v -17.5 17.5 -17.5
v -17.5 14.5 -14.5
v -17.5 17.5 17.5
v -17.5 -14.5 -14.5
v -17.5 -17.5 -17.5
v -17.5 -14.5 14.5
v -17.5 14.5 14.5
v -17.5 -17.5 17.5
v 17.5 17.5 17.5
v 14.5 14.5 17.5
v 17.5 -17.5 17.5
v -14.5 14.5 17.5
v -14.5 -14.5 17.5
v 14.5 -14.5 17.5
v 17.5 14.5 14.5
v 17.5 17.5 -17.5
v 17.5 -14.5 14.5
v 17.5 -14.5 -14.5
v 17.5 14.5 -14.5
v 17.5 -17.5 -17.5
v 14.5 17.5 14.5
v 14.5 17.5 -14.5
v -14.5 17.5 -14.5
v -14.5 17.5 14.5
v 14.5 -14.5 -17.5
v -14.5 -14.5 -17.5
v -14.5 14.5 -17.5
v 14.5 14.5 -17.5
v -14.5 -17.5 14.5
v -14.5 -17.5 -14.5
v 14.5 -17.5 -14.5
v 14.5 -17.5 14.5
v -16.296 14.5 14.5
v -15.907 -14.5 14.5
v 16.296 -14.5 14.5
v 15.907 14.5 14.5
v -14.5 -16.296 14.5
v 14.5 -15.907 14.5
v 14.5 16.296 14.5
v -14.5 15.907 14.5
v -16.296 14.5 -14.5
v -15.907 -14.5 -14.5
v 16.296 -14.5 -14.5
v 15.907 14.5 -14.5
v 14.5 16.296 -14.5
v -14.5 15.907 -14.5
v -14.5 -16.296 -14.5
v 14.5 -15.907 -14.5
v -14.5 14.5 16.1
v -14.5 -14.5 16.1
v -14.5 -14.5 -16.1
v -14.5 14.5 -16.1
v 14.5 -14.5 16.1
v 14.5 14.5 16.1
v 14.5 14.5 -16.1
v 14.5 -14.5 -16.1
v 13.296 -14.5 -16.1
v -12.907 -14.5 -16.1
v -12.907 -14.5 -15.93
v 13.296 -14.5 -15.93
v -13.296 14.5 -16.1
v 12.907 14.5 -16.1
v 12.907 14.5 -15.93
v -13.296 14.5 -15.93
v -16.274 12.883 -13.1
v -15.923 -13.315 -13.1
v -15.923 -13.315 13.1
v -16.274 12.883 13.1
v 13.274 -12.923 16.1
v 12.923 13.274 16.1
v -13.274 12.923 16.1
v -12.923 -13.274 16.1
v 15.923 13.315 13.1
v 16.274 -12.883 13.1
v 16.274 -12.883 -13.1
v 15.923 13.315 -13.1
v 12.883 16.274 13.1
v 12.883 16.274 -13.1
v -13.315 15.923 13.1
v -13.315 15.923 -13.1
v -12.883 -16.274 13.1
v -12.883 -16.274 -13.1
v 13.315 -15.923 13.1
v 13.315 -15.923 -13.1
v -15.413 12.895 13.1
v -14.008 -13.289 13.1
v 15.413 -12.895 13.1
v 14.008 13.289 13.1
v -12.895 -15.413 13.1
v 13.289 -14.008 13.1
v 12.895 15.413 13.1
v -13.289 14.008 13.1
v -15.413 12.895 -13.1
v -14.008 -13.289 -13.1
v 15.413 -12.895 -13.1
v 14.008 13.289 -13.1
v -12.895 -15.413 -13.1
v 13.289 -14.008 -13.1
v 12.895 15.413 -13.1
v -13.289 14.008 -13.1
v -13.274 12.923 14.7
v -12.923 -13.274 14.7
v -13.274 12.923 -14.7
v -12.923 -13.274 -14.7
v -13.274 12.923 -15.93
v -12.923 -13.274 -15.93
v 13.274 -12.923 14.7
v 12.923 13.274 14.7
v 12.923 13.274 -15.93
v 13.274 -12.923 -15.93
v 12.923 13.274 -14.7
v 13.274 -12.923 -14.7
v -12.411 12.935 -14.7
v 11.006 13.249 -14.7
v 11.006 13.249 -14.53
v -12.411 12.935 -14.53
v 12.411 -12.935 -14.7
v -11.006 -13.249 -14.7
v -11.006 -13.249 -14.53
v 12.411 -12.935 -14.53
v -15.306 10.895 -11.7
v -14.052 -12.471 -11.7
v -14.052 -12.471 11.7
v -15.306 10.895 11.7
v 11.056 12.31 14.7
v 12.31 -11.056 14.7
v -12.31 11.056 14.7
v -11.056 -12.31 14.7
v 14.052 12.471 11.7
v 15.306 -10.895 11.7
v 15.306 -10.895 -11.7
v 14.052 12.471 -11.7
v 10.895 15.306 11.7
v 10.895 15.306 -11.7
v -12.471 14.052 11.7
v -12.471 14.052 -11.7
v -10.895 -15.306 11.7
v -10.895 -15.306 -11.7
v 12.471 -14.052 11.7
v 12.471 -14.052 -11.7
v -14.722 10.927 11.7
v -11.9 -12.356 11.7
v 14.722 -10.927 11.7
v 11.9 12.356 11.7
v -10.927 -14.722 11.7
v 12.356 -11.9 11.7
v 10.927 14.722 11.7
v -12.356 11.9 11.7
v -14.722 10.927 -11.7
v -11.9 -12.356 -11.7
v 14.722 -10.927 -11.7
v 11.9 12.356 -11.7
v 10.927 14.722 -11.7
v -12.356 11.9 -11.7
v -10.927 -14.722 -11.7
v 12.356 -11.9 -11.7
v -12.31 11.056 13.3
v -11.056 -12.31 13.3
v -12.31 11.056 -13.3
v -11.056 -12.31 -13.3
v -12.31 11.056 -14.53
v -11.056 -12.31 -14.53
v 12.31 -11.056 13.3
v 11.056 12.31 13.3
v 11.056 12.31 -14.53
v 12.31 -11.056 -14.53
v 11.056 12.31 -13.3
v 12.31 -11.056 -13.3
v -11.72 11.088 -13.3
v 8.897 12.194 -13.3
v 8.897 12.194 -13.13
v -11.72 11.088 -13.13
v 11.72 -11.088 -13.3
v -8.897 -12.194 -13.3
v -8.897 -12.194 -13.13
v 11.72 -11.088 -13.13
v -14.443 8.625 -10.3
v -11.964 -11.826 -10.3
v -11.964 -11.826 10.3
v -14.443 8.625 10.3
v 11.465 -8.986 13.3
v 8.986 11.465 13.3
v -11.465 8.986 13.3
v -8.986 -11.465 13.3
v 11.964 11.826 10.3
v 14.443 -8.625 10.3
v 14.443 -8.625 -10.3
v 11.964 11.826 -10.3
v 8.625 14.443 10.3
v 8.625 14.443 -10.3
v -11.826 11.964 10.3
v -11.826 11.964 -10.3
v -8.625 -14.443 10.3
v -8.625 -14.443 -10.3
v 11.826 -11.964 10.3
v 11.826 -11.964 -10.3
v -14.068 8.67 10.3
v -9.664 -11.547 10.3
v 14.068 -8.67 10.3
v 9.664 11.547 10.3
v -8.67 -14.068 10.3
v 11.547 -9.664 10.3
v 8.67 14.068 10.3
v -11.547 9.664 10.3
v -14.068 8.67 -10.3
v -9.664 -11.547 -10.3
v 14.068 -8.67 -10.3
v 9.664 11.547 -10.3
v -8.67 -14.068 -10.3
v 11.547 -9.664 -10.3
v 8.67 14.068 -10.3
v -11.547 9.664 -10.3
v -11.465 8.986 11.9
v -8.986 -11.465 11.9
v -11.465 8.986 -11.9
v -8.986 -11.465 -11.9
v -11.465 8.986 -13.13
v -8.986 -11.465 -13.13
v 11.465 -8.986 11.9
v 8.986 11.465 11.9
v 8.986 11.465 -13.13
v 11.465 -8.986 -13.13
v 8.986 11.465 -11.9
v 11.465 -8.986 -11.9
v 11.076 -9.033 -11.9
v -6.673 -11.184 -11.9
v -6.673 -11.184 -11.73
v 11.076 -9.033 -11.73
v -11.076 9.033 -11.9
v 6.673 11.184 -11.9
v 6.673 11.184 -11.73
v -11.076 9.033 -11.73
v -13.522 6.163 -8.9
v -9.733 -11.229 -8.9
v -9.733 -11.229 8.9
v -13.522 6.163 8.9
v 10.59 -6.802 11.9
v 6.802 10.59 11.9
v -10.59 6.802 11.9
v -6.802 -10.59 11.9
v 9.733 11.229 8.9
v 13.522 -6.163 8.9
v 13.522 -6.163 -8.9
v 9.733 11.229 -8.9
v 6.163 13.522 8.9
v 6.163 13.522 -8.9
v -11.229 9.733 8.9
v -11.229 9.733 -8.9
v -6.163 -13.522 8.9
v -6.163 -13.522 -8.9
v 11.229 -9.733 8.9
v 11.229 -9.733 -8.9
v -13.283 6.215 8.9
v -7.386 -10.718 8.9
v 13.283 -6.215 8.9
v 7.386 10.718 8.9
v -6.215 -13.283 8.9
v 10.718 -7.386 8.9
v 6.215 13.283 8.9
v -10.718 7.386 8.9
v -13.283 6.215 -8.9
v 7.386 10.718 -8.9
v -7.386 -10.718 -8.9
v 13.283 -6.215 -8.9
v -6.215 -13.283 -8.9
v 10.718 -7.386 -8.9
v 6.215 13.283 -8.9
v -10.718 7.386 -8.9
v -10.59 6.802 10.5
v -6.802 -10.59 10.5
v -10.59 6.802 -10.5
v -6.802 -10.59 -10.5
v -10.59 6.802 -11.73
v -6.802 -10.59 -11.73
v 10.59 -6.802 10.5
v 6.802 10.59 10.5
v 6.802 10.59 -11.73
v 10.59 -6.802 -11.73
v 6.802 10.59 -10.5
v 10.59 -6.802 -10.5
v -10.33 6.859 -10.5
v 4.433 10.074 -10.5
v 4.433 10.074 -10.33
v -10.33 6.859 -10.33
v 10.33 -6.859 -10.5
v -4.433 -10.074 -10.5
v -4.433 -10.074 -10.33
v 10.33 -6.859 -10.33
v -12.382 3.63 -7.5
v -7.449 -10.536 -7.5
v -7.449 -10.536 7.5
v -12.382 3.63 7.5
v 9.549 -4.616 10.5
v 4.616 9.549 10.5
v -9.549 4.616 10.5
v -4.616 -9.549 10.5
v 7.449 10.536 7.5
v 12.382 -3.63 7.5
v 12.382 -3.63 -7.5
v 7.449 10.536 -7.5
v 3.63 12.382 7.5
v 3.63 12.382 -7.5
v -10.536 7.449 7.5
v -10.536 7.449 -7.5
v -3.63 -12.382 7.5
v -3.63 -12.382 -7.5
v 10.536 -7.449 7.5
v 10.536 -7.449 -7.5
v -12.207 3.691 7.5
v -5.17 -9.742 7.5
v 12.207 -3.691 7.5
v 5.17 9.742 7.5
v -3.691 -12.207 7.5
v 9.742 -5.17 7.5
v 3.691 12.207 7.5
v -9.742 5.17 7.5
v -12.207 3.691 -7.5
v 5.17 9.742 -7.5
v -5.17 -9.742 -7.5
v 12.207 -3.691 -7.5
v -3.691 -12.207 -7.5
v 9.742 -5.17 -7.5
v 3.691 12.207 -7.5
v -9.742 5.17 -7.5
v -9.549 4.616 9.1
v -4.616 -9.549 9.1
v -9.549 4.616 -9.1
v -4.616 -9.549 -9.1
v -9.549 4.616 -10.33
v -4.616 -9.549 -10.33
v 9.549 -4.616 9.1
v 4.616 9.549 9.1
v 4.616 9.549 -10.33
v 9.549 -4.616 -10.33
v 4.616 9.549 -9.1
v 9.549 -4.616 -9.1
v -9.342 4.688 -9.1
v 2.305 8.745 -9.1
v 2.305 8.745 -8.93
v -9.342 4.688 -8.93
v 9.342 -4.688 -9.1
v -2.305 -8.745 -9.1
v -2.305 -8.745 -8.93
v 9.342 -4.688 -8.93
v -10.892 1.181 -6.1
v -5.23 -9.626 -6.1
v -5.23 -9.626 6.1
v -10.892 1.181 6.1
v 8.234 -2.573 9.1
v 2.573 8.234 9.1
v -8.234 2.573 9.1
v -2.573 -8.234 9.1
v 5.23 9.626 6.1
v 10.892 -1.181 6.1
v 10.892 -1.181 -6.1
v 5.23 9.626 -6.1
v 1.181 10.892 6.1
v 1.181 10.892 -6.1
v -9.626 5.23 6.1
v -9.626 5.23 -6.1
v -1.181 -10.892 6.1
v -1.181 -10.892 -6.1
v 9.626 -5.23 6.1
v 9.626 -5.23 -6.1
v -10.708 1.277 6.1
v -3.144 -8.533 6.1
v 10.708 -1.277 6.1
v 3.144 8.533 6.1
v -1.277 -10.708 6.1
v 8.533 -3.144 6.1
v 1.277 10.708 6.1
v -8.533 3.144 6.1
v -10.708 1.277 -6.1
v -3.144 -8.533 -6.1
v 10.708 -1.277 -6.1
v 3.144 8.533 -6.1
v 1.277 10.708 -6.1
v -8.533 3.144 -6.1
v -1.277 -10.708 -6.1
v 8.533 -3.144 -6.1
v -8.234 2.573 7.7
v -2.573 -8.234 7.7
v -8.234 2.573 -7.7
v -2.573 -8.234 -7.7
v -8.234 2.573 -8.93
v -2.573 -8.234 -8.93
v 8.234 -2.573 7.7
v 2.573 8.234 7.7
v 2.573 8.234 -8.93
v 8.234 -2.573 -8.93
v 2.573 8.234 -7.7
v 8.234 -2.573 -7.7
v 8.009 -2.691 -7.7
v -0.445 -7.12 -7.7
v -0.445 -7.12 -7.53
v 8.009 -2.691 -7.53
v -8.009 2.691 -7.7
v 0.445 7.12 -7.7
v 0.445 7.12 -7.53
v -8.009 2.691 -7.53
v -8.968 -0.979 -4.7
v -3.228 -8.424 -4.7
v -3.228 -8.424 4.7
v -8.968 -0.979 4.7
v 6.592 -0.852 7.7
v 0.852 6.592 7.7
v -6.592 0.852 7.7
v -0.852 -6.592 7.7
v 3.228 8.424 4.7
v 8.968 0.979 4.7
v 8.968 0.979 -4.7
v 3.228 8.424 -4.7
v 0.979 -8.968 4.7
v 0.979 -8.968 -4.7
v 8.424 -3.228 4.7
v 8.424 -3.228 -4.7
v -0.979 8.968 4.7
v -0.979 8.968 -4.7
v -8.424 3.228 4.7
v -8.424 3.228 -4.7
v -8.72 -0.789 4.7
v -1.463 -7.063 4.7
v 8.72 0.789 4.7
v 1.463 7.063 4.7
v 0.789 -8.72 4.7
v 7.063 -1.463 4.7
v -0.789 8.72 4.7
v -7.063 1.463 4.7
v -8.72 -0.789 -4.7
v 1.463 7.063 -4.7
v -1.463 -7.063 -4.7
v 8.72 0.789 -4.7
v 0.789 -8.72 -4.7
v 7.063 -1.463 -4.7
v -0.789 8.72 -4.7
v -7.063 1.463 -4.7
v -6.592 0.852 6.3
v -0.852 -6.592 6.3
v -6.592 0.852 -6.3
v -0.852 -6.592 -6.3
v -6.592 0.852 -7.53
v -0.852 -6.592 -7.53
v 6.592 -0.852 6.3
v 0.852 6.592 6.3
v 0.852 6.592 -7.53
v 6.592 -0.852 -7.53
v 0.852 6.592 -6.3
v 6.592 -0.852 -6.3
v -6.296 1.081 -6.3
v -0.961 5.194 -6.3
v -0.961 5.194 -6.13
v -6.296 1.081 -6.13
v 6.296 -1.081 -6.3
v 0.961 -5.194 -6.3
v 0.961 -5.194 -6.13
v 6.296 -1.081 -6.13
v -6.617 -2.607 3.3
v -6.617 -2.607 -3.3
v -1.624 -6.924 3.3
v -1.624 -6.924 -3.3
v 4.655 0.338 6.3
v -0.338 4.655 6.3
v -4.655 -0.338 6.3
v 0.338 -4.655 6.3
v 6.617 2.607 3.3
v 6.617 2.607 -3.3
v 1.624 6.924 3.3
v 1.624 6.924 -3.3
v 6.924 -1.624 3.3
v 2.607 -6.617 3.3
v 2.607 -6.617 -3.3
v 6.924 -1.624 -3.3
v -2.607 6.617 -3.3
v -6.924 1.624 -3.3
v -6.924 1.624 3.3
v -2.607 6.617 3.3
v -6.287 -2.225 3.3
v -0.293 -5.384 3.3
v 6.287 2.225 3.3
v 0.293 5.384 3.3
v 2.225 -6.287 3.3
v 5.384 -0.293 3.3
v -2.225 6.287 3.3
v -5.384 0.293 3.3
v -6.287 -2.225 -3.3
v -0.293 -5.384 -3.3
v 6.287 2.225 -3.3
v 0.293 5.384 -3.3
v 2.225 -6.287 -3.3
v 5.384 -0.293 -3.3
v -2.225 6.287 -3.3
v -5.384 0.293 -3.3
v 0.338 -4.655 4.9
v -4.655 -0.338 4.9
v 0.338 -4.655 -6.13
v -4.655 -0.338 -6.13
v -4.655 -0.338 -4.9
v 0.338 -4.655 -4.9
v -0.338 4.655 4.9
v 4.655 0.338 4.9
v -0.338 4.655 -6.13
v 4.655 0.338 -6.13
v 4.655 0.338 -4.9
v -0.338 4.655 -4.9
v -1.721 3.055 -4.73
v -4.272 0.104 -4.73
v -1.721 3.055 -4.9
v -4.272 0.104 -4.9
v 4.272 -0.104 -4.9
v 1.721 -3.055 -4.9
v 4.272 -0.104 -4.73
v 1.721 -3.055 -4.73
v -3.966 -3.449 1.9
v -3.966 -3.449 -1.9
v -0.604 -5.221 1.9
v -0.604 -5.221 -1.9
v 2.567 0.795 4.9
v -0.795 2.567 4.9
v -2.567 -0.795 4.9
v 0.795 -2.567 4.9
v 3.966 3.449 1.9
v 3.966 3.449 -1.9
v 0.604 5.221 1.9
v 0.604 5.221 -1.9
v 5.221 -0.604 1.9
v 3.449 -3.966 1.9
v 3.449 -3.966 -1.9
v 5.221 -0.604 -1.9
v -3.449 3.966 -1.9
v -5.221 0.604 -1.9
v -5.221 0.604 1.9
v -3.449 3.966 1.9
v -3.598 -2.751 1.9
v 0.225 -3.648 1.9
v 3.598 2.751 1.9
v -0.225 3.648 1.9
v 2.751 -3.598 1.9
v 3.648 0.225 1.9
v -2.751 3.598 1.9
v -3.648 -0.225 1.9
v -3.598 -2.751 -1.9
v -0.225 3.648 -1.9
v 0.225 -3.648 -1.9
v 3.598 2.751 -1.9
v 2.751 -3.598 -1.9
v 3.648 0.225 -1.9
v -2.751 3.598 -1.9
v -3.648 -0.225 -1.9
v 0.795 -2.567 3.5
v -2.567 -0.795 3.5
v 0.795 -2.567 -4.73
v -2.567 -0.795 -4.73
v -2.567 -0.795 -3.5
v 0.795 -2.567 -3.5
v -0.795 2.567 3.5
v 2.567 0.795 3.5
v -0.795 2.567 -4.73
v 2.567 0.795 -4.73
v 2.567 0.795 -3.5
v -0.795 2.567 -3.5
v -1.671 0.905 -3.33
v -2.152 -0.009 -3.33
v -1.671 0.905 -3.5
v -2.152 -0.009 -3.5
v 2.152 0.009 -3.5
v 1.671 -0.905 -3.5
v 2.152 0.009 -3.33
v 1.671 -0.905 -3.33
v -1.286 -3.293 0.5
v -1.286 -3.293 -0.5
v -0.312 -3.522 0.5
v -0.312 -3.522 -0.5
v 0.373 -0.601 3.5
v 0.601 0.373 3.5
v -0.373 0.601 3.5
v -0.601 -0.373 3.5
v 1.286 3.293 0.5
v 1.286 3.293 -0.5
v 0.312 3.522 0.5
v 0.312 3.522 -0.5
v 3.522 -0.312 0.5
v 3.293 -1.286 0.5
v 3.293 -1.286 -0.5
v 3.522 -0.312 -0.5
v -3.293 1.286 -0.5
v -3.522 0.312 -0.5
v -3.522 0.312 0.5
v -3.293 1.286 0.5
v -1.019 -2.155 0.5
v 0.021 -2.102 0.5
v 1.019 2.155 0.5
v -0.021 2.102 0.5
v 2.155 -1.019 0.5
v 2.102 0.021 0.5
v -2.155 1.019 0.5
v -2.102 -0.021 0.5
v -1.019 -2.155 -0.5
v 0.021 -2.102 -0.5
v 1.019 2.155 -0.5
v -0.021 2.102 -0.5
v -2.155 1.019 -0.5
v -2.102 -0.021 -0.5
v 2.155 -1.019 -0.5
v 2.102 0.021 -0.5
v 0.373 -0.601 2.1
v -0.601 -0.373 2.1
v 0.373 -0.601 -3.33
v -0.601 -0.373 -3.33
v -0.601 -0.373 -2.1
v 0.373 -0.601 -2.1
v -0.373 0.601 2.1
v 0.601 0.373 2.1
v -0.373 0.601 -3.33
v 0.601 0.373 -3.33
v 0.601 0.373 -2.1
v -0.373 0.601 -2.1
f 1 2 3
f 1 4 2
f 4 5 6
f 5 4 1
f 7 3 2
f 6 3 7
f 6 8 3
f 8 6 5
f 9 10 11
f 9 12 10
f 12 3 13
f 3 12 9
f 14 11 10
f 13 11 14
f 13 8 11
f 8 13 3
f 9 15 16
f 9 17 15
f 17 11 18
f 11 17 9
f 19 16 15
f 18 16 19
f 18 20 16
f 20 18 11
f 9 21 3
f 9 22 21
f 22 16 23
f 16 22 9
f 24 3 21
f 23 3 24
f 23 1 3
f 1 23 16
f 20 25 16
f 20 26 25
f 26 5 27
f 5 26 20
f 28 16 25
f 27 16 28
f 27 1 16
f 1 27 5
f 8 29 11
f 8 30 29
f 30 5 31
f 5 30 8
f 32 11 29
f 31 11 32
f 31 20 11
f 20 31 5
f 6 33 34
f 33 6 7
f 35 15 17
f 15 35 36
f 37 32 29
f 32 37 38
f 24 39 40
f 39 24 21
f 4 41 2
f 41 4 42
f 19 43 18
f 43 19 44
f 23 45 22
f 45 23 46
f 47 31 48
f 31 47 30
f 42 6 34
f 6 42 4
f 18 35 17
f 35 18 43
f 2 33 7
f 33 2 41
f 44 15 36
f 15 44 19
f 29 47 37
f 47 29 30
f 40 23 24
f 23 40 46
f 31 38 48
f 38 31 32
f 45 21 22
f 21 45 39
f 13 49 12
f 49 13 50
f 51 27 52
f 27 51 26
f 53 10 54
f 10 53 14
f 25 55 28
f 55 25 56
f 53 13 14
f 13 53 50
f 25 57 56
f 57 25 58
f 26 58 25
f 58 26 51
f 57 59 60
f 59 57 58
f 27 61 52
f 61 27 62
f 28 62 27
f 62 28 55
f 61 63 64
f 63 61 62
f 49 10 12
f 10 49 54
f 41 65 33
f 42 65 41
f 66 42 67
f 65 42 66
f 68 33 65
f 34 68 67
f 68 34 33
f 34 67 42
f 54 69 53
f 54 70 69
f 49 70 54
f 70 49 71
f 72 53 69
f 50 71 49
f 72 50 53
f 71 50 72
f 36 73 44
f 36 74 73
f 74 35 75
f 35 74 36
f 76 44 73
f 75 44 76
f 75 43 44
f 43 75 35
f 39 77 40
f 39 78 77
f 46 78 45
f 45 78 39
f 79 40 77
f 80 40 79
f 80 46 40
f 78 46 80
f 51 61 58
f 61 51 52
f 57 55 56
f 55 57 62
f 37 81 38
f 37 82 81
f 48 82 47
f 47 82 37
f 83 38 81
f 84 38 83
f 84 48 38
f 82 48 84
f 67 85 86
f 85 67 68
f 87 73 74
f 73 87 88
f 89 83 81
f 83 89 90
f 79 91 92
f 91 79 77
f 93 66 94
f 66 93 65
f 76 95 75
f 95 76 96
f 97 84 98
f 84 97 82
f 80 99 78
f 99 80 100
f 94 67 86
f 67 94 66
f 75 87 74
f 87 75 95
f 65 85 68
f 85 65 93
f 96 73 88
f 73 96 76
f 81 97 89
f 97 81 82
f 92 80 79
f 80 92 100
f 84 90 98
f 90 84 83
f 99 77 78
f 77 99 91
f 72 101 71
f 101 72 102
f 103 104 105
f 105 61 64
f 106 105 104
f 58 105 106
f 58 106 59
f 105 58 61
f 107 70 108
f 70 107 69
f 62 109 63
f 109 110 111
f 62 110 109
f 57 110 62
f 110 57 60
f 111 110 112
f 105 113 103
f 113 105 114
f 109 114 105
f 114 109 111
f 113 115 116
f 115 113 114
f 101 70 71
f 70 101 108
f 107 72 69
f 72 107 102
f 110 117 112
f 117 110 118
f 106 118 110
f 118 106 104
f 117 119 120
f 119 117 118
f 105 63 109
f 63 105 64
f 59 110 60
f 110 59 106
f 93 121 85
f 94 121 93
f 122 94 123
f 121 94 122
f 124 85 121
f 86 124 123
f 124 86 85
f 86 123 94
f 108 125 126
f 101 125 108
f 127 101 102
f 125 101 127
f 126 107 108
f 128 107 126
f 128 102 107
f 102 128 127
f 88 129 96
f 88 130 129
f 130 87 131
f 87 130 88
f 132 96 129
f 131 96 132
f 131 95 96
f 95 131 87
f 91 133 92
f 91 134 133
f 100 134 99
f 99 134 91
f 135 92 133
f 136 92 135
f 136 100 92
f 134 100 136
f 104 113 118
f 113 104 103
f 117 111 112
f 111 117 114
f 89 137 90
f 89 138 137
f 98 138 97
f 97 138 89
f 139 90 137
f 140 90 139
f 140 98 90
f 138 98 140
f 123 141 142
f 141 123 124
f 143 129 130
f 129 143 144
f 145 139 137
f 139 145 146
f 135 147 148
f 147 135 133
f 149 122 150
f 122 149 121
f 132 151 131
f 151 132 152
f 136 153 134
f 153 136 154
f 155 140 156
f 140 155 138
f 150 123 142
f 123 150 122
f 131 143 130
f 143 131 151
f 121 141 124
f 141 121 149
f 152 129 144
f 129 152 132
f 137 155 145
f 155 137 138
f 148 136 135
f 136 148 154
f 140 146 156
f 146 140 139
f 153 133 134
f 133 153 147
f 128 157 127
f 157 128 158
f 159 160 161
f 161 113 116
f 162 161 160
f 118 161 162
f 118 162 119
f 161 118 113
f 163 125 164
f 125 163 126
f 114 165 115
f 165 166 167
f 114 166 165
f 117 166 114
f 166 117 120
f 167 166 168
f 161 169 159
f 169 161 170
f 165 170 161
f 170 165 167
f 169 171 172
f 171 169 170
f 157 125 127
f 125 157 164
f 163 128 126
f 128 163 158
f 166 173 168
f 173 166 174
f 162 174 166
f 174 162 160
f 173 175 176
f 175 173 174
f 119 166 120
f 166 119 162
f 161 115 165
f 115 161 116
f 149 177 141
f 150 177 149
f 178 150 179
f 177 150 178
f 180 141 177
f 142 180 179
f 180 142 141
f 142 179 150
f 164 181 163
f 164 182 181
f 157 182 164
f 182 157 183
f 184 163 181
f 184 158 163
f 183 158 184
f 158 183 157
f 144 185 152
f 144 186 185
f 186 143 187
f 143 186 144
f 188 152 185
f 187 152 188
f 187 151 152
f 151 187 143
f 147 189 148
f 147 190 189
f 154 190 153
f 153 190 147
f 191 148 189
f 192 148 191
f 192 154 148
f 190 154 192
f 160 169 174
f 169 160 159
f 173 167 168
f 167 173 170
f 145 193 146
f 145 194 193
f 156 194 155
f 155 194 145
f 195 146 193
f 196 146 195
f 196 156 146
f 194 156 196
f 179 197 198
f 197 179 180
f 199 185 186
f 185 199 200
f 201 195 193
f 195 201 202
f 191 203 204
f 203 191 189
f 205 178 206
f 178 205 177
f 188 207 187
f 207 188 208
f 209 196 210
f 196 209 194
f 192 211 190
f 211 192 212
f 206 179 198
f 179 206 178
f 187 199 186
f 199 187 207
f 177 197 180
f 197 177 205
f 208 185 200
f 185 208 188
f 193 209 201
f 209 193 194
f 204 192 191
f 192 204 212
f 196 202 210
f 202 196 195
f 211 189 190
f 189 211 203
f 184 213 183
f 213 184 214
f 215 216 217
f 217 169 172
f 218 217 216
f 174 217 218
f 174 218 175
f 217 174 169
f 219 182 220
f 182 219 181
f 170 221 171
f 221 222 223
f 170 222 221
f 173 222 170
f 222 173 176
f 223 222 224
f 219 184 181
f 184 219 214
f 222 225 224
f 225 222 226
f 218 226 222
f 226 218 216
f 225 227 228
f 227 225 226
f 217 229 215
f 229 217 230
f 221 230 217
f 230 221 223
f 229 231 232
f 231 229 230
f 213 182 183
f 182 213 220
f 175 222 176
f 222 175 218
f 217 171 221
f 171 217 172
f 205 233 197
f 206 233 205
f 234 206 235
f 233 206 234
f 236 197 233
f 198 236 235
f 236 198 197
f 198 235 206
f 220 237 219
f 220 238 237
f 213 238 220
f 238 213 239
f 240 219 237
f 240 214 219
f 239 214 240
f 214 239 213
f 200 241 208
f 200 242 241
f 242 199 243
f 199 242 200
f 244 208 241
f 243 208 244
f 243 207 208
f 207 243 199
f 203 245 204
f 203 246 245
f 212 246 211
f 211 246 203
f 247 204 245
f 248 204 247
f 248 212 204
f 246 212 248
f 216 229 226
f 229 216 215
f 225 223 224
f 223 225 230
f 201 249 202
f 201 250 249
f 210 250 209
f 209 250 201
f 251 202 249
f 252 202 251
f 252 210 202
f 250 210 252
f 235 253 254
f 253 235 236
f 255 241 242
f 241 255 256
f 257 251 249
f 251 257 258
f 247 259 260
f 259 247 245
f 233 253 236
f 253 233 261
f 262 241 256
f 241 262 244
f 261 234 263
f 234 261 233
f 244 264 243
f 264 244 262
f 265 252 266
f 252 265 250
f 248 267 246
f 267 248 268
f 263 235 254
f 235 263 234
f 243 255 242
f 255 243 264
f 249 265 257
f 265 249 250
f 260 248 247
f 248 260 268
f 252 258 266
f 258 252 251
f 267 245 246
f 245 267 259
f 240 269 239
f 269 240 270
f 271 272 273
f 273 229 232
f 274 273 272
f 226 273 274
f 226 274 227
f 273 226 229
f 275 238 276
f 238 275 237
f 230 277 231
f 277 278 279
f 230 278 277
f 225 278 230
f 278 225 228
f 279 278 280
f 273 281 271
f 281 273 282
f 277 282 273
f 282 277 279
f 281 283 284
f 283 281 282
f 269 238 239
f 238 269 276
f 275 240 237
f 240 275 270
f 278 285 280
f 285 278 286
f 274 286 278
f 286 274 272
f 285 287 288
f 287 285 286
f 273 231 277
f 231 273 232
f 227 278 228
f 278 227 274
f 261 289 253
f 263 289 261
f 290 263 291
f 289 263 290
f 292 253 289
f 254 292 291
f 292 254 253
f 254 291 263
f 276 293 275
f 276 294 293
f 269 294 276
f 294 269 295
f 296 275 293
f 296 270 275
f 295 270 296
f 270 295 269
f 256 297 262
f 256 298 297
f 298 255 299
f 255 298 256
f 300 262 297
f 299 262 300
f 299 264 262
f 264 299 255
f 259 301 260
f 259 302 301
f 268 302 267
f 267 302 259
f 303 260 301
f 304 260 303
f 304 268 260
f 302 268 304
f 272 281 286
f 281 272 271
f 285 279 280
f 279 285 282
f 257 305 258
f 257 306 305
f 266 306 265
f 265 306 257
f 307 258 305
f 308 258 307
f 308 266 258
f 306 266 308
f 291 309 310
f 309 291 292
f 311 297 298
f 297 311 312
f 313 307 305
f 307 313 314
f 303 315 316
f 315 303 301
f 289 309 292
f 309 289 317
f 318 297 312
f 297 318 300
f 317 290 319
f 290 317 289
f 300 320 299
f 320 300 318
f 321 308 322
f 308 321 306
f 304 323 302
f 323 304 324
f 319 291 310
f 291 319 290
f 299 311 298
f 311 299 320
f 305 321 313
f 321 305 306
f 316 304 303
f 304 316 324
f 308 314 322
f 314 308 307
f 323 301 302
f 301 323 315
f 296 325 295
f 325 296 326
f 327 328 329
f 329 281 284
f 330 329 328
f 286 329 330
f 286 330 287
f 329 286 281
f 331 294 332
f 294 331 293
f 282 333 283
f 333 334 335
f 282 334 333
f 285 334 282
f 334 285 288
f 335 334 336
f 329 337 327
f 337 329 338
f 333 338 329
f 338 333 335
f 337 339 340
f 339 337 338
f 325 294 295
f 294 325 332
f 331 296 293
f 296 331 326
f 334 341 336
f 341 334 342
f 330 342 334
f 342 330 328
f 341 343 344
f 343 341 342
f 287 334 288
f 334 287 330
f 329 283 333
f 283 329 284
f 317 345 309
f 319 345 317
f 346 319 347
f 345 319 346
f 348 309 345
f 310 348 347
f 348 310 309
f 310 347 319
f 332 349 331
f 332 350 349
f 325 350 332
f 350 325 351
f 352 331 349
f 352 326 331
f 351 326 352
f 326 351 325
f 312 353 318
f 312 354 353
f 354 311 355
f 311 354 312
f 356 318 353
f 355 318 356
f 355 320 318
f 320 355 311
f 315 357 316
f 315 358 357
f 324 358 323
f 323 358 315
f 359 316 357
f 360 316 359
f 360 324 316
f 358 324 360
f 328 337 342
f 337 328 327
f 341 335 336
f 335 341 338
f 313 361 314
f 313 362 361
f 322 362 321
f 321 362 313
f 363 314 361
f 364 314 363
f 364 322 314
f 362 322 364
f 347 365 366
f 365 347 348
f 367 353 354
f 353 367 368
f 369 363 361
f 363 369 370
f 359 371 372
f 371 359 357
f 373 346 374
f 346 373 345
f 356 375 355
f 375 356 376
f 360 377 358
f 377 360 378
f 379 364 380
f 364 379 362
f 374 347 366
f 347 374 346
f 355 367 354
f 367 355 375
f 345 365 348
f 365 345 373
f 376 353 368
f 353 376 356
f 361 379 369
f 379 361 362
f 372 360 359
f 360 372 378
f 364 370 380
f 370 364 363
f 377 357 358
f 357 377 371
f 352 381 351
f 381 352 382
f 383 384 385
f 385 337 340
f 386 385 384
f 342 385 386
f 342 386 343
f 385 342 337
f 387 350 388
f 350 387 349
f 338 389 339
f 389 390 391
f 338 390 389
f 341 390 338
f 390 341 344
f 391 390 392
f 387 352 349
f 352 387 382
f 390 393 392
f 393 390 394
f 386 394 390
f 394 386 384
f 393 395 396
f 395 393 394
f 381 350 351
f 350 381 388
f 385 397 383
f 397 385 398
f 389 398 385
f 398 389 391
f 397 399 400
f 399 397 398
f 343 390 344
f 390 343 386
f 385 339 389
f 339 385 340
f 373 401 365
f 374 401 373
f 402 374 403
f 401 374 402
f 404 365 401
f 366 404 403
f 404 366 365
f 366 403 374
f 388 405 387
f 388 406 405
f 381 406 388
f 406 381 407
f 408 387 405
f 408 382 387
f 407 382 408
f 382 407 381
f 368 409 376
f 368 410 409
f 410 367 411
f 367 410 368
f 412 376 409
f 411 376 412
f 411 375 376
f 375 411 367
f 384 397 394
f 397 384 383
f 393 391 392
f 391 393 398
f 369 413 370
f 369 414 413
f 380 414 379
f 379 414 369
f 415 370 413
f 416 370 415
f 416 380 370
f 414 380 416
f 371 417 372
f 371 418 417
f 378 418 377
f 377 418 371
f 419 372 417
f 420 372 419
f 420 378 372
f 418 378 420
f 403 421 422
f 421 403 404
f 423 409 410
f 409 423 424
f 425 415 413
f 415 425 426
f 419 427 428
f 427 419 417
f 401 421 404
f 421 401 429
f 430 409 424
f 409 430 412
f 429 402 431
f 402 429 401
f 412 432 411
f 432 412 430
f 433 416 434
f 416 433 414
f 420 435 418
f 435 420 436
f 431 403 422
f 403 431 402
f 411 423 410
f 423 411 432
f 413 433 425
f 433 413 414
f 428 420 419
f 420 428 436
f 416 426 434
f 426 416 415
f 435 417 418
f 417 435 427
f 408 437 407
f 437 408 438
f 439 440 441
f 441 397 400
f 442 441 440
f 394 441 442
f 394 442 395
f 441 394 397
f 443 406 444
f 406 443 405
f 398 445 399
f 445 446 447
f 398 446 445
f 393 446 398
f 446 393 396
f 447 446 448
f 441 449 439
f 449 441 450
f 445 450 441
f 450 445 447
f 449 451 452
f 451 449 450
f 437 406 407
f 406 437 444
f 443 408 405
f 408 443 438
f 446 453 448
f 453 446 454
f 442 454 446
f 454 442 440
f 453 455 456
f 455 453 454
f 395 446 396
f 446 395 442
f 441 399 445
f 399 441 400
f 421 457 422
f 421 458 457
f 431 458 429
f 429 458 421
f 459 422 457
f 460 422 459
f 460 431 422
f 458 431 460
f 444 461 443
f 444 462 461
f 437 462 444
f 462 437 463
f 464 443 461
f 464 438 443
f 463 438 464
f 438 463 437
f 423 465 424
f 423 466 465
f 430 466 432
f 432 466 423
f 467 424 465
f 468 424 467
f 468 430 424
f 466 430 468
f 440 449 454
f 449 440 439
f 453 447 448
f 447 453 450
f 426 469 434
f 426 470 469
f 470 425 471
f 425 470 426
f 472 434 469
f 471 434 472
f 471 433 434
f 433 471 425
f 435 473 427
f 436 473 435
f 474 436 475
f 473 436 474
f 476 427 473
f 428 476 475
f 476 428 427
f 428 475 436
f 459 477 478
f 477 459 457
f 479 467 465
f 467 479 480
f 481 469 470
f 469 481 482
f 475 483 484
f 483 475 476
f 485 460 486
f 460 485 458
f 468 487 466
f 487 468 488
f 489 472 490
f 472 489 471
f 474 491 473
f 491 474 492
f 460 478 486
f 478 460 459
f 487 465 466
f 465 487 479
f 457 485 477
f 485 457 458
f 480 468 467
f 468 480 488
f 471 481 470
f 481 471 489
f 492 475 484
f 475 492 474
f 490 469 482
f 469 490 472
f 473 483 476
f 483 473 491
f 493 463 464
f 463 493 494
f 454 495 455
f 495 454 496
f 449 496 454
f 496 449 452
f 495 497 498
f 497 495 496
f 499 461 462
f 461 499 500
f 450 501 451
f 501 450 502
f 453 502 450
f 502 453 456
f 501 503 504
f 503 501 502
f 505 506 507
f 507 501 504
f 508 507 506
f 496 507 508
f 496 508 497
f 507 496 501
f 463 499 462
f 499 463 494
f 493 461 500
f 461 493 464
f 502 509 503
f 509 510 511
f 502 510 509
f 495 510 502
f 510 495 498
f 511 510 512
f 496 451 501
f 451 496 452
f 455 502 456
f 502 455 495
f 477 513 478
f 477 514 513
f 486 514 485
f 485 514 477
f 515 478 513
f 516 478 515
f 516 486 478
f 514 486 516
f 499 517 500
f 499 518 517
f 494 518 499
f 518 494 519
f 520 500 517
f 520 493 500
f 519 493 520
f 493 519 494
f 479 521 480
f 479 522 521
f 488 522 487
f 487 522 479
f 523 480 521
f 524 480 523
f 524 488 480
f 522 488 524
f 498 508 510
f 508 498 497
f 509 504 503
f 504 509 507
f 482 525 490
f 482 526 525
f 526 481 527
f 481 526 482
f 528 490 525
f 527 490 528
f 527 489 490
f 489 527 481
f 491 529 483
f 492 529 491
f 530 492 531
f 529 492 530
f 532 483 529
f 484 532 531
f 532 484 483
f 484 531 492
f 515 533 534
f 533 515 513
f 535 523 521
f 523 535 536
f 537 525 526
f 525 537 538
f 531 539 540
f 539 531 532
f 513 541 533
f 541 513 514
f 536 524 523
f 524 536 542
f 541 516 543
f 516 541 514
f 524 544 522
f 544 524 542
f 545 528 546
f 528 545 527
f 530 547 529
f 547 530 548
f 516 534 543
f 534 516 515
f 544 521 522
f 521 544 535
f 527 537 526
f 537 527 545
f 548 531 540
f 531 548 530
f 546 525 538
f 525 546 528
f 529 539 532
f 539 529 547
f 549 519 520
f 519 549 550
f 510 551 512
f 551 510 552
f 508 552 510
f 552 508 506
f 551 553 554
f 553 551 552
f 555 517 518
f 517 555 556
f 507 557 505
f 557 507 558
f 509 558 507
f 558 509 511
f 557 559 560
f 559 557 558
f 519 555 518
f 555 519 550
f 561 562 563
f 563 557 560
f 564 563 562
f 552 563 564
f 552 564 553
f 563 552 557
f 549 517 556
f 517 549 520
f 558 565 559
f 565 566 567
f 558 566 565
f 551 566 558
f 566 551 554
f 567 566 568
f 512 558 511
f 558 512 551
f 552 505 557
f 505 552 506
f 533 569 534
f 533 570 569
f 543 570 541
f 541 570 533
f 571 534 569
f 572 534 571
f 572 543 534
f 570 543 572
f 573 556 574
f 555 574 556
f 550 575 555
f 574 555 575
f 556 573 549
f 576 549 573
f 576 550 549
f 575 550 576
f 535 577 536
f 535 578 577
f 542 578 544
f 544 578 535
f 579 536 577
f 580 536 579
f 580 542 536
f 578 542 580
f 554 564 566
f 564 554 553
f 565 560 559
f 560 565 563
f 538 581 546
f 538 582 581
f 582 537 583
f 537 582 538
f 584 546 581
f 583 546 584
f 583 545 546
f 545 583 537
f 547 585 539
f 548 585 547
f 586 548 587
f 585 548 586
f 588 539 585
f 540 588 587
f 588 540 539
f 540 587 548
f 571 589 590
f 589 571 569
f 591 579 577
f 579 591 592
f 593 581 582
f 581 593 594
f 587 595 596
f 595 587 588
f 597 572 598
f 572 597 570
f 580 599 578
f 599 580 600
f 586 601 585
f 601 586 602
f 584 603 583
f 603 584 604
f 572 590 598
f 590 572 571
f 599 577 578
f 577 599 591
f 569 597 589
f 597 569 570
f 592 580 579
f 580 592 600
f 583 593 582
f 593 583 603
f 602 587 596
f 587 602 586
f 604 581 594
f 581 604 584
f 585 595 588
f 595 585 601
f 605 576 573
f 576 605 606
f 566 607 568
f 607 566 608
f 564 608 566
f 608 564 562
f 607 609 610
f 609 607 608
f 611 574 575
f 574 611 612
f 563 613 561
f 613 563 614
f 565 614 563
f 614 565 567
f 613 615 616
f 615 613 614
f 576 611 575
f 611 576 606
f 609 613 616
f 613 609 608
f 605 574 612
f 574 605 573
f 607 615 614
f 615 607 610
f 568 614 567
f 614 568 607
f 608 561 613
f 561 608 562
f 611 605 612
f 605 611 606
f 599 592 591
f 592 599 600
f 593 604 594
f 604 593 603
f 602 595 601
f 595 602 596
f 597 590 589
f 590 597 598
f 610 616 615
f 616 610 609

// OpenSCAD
WALL_THICKNESS = 3;
SIZE = 35;
STEPS = 150;
TOTAL_ROTATION = 30;
K = 2;
LAYER = 0.17;

module make_cube_edges(size, rotation, etch_base) {
    d1 = size - WALL_THICKNESS*2; // to keep walls
    d2 = size + WALL_THICKNESS; // to dig face
    rotate([0, 0, rotation])
    difference() {
        cube([size, size, size], true); // full cube
        cube([d2, d1, d1], true); // dig along X axis
        cube([d1, d2, d1], true); // dig along Y axis
        cube([d1, d1, d2], true); // dig along Z axis
        
        if (etch_base)
            translate([0, 0, -size/2])
            cube([d1, d2, LAYER*2], true); // dig along Z axis
    }        
}

for (i=[0:WALL_THICKNESS*4:STEPS]) {
    make_cube_edges(SIZE * (1 - i/STEPS), TOTAL_ROTATION*pow(i/STEPS*K, 2), i);
}
